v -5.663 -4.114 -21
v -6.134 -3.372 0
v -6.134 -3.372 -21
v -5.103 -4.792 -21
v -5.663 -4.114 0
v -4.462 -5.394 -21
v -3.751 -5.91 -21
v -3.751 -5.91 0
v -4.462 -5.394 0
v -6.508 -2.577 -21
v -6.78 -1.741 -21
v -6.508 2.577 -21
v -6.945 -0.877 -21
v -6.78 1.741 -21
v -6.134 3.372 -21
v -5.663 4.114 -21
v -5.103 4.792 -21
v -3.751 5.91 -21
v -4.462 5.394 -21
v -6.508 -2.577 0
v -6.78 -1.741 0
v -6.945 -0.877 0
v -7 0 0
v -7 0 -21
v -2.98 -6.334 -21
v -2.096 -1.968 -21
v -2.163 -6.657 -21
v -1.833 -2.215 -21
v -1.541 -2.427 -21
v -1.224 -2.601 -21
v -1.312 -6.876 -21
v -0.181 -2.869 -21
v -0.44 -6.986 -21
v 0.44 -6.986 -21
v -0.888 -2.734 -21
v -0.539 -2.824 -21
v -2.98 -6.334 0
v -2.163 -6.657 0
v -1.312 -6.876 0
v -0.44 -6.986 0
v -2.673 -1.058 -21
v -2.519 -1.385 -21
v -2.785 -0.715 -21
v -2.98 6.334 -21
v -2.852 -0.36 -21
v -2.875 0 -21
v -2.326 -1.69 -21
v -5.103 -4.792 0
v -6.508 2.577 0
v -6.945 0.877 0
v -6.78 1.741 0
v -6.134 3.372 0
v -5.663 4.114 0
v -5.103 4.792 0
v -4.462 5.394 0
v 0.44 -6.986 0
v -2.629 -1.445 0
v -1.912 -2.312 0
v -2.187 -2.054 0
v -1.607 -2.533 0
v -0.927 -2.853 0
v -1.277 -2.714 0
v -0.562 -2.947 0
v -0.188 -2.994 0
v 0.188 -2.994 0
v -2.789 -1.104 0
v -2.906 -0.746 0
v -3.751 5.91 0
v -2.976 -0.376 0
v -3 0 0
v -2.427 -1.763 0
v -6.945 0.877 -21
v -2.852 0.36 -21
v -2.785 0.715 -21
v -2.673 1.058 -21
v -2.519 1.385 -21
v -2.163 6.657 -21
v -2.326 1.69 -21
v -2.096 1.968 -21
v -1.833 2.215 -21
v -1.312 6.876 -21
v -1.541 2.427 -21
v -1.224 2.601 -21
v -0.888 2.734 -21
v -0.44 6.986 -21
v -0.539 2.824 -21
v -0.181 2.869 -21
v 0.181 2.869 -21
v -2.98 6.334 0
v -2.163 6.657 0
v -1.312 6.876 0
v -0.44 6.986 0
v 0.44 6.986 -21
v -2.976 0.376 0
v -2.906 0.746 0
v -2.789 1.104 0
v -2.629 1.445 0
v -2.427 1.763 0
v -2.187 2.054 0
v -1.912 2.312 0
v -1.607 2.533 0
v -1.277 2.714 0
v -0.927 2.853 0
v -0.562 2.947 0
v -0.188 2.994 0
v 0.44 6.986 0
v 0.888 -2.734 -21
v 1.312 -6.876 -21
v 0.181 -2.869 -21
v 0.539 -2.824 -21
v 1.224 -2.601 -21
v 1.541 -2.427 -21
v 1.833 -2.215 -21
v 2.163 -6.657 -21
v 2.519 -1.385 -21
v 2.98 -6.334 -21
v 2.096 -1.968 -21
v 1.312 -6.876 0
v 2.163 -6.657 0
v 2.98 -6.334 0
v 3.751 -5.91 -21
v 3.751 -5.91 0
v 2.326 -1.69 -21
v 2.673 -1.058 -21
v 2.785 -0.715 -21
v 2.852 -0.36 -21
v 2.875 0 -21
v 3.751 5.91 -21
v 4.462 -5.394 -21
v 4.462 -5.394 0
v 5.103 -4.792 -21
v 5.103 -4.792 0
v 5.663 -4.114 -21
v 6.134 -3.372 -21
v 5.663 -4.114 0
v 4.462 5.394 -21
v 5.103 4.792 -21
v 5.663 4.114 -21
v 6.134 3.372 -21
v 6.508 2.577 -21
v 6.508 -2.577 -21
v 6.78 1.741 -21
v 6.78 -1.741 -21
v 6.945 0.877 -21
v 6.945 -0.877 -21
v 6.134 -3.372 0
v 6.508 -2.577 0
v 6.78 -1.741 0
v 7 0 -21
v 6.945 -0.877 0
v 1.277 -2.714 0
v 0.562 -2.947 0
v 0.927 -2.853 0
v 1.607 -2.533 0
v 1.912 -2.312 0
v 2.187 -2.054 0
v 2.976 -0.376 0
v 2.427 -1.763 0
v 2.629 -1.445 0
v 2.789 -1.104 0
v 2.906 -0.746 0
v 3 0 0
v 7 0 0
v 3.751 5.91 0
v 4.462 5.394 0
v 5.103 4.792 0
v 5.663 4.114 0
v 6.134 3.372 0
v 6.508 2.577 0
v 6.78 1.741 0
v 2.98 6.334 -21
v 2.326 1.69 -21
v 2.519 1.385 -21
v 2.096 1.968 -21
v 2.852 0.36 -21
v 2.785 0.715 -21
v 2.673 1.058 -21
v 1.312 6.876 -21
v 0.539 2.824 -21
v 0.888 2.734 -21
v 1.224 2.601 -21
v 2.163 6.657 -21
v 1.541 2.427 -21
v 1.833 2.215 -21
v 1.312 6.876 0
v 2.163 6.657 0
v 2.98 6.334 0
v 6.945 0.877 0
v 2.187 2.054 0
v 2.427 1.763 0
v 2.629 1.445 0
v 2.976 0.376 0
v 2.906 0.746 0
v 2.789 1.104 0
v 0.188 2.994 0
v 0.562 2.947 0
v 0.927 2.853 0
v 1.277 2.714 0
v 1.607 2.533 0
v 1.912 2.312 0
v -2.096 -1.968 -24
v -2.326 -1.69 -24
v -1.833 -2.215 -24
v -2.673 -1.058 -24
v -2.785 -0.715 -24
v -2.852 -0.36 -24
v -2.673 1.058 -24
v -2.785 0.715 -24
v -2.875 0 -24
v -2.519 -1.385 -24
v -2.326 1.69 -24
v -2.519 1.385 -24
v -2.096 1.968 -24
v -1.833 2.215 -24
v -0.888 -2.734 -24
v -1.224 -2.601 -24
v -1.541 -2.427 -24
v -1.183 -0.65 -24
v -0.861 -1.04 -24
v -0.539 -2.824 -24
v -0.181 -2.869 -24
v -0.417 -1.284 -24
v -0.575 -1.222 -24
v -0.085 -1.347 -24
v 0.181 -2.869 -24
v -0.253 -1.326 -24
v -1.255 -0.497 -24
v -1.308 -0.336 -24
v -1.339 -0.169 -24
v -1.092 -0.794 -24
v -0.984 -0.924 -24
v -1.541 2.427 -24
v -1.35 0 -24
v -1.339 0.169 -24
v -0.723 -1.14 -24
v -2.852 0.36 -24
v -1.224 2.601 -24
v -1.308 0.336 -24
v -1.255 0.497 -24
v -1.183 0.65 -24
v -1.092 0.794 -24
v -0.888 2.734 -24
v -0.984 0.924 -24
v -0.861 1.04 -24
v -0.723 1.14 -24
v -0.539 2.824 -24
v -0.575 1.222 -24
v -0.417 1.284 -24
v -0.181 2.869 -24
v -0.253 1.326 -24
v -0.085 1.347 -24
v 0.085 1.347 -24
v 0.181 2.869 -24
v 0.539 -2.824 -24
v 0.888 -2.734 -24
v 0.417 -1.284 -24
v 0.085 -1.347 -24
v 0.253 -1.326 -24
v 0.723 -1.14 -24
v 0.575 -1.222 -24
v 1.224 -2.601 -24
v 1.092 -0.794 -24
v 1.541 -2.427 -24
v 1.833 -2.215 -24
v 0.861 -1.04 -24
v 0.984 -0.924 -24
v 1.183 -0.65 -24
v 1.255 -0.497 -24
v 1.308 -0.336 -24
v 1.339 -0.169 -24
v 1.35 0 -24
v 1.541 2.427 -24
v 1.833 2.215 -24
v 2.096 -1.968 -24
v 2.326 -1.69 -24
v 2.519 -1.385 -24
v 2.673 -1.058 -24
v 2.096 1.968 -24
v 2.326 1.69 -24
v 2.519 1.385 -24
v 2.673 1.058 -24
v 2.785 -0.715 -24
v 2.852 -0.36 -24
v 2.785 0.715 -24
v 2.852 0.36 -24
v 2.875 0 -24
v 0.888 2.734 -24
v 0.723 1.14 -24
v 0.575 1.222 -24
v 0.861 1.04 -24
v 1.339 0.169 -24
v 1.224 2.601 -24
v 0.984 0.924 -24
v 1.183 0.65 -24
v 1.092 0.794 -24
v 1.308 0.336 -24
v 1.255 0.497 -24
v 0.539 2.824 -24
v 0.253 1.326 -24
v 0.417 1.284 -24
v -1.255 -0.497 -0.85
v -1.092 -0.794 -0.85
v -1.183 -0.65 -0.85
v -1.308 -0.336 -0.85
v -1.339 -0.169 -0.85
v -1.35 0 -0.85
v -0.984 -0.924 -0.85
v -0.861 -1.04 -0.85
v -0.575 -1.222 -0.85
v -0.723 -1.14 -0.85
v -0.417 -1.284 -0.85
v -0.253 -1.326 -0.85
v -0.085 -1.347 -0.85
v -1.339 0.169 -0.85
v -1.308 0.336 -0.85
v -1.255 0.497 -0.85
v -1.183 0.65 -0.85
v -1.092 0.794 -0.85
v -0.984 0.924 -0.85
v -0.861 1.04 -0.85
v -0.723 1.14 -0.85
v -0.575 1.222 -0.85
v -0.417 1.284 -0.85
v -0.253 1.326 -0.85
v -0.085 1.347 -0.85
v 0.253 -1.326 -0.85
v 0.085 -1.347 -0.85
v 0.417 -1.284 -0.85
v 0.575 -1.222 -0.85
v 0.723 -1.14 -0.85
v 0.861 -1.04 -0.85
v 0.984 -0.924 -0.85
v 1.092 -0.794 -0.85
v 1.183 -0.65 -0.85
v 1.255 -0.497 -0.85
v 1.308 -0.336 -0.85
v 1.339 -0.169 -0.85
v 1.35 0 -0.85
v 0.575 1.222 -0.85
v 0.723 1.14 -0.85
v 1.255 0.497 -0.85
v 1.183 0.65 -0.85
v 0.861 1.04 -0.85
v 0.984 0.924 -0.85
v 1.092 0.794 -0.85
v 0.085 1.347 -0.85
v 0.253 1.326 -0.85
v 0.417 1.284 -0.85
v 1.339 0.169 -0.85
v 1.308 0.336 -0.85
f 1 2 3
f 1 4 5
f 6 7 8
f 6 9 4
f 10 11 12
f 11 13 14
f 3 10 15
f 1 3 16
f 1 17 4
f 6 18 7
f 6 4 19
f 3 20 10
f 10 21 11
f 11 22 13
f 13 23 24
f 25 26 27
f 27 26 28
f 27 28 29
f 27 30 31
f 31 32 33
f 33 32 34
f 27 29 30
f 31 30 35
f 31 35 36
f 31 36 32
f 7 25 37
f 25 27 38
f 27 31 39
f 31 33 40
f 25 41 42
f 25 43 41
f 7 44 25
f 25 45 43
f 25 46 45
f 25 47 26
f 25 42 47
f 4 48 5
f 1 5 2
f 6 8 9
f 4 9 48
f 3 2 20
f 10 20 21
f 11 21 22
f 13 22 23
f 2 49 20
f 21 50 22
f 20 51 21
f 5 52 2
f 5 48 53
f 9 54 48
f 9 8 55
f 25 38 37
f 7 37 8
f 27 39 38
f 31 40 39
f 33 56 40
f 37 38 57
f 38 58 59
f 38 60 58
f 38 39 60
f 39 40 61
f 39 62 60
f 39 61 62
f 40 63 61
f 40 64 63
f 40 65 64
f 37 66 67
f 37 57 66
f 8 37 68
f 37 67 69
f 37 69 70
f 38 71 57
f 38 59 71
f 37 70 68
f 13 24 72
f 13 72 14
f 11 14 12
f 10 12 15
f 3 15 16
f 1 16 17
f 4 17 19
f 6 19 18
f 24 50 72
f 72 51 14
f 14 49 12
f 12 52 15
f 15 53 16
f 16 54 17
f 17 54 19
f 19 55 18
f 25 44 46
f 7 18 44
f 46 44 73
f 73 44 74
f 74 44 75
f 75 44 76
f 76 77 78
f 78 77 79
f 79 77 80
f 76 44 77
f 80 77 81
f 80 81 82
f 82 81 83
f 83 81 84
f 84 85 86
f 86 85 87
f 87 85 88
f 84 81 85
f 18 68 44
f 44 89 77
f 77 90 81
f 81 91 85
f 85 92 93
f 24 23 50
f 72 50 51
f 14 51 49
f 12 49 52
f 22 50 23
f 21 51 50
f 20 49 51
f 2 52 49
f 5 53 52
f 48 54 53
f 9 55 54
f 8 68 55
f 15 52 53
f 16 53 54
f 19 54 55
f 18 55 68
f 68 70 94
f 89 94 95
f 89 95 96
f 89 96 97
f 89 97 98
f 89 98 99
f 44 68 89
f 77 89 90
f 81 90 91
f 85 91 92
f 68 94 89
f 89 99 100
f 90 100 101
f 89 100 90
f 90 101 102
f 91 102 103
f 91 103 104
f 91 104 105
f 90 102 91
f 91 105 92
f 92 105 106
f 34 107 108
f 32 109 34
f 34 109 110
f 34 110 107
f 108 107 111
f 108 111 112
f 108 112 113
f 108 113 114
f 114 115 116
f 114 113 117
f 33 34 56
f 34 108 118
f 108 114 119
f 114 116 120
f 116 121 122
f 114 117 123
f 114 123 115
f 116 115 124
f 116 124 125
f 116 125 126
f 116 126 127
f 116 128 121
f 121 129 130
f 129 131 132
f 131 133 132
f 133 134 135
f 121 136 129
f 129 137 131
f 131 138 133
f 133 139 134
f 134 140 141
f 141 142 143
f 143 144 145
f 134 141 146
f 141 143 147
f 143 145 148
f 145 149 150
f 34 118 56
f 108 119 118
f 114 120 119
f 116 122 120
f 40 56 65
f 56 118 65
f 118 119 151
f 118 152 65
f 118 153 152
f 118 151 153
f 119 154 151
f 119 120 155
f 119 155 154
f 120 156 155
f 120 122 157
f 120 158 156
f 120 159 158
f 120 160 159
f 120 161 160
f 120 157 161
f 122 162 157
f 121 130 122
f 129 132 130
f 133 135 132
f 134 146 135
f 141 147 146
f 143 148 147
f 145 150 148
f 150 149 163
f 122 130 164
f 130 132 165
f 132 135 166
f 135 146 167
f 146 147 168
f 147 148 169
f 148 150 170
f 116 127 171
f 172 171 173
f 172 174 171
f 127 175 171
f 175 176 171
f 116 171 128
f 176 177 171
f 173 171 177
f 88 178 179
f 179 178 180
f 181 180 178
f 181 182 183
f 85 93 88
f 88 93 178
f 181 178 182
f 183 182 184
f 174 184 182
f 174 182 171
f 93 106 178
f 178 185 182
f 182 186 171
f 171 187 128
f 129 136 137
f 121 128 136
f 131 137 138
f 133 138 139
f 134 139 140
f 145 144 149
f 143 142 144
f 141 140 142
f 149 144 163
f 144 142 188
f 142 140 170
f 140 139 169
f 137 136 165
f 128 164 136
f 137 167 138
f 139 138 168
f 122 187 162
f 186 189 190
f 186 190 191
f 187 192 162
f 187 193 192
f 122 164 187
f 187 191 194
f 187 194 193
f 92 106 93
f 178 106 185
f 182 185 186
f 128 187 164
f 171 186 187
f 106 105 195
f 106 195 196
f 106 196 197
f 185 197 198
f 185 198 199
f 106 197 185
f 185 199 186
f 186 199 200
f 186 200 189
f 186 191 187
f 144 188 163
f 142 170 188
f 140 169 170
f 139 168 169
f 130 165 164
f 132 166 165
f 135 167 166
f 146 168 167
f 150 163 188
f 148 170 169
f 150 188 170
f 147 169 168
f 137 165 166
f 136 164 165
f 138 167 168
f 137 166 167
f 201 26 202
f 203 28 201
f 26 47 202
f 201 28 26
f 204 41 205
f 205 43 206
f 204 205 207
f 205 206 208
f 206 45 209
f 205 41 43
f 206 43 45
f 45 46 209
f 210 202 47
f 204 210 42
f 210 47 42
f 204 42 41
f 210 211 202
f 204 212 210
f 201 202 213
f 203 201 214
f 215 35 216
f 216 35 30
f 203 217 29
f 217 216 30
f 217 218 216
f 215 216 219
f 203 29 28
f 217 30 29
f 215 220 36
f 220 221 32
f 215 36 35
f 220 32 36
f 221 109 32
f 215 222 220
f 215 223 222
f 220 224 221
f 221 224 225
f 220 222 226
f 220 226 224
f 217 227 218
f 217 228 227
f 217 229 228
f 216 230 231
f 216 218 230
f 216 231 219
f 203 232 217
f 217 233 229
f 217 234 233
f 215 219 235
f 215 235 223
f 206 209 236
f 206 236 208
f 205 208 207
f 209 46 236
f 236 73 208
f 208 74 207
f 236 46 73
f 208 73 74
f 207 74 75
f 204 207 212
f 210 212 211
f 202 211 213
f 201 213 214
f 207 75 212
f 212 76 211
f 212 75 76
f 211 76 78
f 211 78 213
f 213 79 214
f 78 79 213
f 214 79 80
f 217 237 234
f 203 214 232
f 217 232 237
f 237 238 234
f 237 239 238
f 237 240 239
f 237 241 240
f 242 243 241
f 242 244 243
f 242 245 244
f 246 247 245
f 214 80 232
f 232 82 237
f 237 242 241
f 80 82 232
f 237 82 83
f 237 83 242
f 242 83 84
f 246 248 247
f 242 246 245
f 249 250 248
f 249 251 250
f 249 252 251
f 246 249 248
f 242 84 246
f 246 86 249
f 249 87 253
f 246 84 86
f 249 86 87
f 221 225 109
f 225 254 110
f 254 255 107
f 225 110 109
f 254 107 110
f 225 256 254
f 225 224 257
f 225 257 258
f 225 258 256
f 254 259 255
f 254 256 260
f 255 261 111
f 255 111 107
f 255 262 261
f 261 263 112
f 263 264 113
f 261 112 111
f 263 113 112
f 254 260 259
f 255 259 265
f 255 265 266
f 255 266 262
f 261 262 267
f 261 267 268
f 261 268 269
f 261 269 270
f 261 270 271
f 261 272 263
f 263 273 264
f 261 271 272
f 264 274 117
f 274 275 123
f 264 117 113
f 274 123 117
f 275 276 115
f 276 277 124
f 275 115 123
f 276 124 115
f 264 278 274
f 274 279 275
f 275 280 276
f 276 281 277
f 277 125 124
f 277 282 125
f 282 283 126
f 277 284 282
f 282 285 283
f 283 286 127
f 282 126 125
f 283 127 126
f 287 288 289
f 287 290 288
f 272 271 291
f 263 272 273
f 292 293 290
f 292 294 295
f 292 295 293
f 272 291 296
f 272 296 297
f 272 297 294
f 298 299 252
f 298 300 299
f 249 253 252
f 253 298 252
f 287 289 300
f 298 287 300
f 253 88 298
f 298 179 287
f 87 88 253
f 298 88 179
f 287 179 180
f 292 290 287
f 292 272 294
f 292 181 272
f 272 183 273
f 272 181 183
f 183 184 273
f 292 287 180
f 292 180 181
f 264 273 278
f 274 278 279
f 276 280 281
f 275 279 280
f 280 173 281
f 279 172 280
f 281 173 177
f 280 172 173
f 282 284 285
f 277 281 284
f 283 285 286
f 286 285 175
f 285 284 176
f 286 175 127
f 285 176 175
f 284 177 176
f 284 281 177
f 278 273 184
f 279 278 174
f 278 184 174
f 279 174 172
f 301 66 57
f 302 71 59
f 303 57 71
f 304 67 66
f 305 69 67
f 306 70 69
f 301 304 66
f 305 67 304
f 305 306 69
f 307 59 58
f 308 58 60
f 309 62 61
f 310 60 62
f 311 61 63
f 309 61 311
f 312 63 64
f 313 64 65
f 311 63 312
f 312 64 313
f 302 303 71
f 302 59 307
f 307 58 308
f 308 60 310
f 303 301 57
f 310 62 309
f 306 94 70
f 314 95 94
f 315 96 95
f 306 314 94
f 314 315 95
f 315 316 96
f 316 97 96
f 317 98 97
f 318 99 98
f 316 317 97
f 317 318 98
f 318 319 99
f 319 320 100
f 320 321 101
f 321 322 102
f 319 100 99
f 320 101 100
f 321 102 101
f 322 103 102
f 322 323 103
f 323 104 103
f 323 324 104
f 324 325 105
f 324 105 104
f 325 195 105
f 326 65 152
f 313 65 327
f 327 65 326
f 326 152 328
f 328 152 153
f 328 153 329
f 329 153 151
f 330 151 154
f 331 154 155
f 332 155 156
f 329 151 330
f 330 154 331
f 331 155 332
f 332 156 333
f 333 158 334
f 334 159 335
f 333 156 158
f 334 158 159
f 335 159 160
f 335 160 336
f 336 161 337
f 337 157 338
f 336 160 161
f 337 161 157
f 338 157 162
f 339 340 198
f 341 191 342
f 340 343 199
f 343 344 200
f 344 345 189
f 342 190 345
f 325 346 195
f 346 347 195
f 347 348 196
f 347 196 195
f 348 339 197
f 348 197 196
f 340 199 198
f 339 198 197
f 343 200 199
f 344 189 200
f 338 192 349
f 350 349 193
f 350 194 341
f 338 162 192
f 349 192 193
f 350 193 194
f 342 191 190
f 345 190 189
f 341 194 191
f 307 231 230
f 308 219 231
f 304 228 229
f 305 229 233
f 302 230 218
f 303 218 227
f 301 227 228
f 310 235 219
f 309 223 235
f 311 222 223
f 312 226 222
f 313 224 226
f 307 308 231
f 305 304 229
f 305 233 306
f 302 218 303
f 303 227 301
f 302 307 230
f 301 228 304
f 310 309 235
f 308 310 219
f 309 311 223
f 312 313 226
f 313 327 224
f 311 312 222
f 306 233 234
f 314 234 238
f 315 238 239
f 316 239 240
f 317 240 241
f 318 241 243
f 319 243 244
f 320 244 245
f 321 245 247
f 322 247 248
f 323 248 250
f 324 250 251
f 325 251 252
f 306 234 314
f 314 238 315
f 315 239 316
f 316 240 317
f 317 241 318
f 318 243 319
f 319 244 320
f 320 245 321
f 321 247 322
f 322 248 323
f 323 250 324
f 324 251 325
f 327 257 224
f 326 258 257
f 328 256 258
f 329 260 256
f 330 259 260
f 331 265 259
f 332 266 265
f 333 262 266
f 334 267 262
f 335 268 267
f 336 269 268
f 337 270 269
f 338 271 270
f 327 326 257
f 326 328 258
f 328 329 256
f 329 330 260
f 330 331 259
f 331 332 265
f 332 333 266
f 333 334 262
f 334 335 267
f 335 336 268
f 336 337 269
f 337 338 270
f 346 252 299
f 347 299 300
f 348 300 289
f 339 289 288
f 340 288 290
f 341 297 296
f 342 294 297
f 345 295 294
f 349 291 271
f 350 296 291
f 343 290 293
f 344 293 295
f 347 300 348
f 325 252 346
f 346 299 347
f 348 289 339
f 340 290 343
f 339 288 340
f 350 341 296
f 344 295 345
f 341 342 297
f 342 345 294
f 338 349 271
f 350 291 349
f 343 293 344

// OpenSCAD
$fn = 50;


difference() {
	union() {
		translate(v = [0, 0, -21.0000000000]) {
			cylinder(h = 21, r = 7.0000000000);
		}
		#translate(v = [0, 0, -24.0000000000]) {
			cylinder(h = 24, r = 2.8750000000);
		}
	}
	union() {
		translate(v = [0, 0, 0]) {
			rotate(a = [0, 0, 0]) {
				difference() {
					union() {
						translate(v = [0, 0, -24.0000000000]) {
							cylinder(h = 24, r = 1.0000000000);
						}
						translate(v = [0, 0, -0.8500000000]) {
							cylinder(h = 0.8500000000, r1 = 1.3500000000, r2 = 3.0000000000);
						}
						translate(v = [0, 0, -24.0000000000]) {
							cylinder(h = 24, r = 1.3500000000);
						}
						translate(v = [0, 0, -24.0000000000]) {
							cylinder(h = 24, r = 1.0000000000);
						}
					}
					union();
				}
			}
		}
	}
}
